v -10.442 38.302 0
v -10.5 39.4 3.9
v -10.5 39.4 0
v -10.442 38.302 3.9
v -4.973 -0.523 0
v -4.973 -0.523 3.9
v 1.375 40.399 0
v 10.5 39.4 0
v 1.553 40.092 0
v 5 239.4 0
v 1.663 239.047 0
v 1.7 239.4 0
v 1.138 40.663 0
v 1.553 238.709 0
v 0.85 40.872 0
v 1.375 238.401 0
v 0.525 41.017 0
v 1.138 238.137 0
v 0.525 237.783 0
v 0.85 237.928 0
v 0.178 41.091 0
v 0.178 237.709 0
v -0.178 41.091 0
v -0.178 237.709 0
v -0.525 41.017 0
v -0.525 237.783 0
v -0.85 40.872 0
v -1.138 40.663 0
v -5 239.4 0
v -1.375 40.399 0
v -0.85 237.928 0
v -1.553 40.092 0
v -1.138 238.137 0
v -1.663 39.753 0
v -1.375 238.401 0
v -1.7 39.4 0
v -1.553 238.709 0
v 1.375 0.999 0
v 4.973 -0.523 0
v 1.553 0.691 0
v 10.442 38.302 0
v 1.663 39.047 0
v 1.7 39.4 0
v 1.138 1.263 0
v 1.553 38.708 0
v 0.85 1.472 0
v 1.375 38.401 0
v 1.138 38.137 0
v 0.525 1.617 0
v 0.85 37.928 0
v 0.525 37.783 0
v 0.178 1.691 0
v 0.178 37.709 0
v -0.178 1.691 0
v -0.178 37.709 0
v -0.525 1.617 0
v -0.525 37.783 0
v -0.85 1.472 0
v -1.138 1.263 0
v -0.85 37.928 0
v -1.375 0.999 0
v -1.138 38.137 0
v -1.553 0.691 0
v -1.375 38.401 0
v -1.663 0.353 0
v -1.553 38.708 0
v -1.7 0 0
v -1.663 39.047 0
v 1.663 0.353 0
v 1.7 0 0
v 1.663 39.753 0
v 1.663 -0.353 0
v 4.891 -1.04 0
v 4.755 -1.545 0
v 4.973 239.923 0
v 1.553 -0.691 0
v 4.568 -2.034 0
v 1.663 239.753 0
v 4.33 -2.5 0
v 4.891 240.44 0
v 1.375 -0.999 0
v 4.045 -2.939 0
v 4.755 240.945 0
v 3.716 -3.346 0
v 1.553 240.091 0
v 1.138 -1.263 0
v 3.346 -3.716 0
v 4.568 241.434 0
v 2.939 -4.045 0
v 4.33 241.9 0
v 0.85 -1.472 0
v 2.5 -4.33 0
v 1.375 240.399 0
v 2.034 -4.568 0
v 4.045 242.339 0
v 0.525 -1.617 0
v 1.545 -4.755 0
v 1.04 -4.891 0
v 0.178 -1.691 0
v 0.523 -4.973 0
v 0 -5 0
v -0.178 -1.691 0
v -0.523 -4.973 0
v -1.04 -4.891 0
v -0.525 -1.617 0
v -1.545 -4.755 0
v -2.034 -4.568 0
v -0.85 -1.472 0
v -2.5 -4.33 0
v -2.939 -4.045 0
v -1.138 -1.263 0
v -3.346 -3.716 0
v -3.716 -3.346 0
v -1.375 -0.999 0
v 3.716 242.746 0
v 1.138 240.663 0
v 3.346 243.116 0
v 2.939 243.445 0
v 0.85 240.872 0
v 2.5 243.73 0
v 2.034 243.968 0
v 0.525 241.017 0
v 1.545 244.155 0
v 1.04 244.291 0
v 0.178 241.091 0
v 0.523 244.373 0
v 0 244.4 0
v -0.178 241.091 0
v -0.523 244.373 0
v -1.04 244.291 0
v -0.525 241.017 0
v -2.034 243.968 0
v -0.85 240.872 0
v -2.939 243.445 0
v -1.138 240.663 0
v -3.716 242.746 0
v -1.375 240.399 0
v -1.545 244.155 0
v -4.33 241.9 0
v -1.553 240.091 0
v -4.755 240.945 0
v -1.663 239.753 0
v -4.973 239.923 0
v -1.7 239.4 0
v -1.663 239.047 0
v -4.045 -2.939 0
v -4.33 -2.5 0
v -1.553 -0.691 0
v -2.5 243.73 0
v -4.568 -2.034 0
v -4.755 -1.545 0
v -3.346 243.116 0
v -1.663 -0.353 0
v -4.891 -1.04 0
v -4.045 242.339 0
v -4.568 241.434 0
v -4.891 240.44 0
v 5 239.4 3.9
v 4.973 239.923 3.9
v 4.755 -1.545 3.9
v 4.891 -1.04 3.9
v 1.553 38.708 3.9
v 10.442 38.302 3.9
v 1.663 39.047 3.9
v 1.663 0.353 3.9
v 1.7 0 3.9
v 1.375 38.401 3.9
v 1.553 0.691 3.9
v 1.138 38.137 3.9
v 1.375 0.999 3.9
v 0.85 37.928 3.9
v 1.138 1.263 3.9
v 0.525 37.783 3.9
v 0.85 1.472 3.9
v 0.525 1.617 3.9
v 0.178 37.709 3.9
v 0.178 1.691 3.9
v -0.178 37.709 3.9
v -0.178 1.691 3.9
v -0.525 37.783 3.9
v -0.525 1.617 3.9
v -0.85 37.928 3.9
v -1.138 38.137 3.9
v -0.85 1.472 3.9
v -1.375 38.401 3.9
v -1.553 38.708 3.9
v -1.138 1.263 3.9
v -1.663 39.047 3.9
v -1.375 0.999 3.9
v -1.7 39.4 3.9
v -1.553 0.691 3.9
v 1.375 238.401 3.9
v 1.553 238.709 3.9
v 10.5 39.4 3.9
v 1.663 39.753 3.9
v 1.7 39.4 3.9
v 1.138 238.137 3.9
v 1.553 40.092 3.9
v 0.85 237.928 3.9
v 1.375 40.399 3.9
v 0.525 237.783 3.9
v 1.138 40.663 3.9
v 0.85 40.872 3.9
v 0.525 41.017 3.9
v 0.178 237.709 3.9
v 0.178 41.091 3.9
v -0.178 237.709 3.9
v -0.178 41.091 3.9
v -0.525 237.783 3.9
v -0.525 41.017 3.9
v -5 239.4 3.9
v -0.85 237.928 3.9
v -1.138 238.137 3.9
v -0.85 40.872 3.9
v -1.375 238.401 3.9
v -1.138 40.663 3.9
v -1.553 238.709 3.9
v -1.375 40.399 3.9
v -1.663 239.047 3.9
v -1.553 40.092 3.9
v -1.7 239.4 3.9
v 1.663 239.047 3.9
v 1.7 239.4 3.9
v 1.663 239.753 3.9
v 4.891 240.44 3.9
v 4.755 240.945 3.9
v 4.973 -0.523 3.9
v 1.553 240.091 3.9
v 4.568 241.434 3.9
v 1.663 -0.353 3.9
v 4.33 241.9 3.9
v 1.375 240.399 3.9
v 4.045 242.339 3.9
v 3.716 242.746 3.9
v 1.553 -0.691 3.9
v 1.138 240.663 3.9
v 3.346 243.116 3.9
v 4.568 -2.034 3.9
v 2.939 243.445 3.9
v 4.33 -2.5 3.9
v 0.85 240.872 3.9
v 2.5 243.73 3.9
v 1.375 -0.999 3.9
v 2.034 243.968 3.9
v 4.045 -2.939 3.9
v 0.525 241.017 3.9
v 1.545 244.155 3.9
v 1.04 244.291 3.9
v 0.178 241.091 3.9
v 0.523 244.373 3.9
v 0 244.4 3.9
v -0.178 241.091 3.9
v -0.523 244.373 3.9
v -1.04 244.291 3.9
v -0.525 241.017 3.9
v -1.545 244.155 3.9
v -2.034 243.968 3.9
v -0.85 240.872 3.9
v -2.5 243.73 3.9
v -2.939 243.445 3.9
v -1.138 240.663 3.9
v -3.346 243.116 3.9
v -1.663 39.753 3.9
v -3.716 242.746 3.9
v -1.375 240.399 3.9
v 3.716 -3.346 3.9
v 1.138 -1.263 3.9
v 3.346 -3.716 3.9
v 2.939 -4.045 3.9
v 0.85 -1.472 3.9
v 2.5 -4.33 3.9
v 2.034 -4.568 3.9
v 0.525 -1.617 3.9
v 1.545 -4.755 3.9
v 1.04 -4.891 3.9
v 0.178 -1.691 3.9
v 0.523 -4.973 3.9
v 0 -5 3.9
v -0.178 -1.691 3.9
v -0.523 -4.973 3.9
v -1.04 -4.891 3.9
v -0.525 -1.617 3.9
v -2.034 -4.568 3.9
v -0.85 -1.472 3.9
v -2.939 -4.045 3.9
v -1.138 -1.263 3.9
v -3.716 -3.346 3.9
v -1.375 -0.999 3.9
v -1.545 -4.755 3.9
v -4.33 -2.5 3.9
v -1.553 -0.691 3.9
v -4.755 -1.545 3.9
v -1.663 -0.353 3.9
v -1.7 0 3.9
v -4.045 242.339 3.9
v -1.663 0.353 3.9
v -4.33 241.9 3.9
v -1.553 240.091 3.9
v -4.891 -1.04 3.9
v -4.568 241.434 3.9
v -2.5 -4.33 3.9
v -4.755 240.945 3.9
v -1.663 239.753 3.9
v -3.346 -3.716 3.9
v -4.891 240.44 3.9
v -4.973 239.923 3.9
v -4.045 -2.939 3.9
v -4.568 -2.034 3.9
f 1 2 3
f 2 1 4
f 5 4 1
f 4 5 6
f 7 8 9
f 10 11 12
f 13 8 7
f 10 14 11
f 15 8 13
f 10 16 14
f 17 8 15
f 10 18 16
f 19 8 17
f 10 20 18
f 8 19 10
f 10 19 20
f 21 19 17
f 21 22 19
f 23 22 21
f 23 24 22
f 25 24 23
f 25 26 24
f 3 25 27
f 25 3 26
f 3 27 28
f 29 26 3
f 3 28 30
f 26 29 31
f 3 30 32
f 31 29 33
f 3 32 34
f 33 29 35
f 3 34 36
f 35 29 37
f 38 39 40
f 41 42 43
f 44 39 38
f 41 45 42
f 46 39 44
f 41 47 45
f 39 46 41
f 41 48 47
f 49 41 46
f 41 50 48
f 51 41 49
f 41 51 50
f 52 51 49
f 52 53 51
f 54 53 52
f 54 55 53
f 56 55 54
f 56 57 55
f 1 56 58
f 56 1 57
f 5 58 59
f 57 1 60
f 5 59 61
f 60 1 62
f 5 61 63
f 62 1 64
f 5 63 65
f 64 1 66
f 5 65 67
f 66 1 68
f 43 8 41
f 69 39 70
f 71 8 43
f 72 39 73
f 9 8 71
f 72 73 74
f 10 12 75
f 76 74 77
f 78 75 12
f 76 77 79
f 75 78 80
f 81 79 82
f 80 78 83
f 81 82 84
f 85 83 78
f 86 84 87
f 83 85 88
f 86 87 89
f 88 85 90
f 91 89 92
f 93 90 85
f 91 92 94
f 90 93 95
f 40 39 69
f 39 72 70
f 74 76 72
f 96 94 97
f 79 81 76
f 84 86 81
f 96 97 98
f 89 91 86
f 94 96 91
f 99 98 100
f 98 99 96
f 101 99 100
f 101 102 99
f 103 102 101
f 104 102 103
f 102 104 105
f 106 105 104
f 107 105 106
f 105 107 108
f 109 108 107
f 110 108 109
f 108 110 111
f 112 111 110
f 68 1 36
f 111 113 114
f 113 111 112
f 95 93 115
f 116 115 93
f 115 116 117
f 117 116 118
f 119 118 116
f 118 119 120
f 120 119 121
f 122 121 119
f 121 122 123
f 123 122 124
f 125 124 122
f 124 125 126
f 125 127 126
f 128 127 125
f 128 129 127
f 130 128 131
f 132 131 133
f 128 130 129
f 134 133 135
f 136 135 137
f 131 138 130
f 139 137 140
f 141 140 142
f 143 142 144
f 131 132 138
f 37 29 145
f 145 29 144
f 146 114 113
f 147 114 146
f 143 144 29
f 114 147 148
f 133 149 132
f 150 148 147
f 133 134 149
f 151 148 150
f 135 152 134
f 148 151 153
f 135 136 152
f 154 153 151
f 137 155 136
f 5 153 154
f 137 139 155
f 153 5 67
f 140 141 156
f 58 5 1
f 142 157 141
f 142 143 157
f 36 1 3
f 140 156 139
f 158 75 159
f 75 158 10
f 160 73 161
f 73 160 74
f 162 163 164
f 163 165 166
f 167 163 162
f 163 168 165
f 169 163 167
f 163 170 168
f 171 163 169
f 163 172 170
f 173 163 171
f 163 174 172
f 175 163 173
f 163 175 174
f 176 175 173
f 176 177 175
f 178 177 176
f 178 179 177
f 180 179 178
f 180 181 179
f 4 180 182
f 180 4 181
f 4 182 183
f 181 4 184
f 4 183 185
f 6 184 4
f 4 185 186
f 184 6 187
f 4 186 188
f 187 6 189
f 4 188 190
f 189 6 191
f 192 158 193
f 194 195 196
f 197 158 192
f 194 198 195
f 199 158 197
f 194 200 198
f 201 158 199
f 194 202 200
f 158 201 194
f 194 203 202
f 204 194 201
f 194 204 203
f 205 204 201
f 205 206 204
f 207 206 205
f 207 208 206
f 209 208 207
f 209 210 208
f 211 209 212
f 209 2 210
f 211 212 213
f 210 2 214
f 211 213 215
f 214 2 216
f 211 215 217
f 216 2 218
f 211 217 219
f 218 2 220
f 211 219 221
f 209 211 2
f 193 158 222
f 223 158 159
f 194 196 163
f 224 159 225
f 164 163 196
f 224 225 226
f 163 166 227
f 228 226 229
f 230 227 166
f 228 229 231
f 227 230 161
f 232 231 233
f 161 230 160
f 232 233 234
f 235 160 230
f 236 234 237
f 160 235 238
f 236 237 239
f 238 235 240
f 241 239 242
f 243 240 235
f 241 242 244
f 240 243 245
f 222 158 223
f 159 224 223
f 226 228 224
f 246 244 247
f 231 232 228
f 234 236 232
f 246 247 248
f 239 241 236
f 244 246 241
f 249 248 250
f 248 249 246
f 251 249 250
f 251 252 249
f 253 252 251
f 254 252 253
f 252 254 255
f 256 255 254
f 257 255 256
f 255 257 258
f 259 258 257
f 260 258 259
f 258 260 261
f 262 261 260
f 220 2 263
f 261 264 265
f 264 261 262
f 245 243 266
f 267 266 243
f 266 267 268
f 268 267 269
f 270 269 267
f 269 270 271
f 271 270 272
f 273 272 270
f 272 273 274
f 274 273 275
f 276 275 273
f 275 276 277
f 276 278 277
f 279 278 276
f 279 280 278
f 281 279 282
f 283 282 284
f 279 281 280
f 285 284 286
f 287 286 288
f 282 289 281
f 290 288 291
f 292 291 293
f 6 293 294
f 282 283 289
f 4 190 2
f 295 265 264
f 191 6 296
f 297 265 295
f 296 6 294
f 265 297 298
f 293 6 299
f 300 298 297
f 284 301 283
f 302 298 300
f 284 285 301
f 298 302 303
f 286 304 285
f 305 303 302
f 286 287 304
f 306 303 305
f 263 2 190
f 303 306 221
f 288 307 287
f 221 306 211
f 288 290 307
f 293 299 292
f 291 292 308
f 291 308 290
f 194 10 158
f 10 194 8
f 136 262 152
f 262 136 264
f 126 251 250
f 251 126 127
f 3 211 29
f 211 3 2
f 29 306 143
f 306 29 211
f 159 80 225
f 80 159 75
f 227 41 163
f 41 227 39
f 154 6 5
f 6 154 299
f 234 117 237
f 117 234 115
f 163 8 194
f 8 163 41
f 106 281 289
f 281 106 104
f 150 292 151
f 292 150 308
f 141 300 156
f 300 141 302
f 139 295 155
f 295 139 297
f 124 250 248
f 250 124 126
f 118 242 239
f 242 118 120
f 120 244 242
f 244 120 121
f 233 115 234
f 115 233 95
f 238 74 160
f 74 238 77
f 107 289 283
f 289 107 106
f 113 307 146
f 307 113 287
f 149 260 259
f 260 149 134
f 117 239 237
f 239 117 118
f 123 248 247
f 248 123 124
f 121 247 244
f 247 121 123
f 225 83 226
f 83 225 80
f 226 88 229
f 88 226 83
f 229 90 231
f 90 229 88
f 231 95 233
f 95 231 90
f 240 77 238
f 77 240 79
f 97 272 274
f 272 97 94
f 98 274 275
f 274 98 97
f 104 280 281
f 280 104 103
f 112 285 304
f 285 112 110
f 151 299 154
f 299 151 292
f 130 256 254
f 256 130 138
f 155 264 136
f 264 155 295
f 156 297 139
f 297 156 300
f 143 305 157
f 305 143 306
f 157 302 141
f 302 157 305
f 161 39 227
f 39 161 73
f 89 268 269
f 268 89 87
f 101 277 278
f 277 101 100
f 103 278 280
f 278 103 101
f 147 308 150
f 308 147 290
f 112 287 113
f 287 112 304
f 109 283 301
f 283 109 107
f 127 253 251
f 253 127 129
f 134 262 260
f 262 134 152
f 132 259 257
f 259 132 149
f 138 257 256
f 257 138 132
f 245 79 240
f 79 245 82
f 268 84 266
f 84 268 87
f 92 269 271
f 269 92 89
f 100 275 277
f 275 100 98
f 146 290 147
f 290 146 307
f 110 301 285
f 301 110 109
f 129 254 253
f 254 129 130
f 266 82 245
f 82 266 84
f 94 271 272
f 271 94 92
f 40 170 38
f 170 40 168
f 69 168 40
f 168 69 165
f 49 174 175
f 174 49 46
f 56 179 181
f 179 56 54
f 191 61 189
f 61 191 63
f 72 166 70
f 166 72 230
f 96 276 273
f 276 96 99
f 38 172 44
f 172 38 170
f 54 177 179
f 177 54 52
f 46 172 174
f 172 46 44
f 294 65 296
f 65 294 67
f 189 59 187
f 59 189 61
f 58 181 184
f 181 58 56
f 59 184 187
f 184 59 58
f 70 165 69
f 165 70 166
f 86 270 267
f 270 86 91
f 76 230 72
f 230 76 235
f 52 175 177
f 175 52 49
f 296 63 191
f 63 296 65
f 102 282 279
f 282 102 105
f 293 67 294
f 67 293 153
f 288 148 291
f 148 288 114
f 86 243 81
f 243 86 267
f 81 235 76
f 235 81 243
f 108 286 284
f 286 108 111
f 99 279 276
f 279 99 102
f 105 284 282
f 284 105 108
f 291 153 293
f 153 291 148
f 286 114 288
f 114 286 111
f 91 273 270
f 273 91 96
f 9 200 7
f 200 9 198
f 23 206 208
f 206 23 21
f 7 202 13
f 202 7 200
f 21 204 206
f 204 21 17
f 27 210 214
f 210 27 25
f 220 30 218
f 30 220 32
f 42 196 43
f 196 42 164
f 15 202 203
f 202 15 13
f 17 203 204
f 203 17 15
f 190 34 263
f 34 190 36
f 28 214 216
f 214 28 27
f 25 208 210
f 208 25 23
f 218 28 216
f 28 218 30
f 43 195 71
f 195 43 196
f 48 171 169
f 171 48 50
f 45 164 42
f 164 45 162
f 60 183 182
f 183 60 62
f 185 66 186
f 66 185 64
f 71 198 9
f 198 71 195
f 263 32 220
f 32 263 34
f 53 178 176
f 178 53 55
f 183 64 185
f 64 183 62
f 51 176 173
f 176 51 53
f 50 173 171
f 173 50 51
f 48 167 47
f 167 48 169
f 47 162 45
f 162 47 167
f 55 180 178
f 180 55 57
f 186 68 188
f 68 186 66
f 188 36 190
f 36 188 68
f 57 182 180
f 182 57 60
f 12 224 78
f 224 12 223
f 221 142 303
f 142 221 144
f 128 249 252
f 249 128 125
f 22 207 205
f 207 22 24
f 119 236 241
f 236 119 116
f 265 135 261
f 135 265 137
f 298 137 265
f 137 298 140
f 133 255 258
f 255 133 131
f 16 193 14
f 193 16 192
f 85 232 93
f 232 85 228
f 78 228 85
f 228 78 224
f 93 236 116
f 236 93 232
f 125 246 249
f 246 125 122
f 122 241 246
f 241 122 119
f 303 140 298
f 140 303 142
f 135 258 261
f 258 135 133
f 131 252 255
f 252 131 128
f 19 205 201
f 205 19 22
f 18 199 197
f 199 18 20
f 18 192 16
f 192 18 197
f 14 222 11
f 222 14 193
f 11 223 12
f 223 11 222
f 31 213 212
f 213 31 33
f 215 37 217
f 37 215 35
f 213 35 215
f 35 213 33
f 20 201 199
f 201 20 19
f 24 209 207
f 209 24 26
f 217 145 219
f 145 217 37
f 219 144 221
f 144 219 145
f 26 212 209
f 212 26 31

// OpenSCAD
//general
$fn = 30;                  //convexity of general curved faces
thickness = 3.9;             //thickness of arm

//circular servo horn measurements
horn_diameter = 21;             //diameter of the circular horn

//arm specific stuff
arm_length =  200;//155               //horn center to horn center distance for arm length
lever_length = 39.4;             //length of lever bit on end of arm

pivot_diameter = 10;            //diameter of pivoting end
free_turning3mm = 3.4;          //diameter of hole for free turning motion

difference(){
   hull(){
      cylinder(d=pivot_diameter,h=thickness, $fn = 60);
      translate([0,lever_length,0])
      cylinder(d=horn_diameter,h=thickness, $fn = 60);
      translate([0,lever_length+arm_length,0])
      cylinder(d=pivot_diameter, h=thickness, $fn = 60);
   }
   cylinder(d=free_turning3mm,h=thickness);
   translate([0,lever_length,0])
   cylinder(d=free_turning3mm,h=thickness);
   translate([0,lever_length+arm_length,0])
   cylinder(d=free_turning3mm,h=thickness);
}
